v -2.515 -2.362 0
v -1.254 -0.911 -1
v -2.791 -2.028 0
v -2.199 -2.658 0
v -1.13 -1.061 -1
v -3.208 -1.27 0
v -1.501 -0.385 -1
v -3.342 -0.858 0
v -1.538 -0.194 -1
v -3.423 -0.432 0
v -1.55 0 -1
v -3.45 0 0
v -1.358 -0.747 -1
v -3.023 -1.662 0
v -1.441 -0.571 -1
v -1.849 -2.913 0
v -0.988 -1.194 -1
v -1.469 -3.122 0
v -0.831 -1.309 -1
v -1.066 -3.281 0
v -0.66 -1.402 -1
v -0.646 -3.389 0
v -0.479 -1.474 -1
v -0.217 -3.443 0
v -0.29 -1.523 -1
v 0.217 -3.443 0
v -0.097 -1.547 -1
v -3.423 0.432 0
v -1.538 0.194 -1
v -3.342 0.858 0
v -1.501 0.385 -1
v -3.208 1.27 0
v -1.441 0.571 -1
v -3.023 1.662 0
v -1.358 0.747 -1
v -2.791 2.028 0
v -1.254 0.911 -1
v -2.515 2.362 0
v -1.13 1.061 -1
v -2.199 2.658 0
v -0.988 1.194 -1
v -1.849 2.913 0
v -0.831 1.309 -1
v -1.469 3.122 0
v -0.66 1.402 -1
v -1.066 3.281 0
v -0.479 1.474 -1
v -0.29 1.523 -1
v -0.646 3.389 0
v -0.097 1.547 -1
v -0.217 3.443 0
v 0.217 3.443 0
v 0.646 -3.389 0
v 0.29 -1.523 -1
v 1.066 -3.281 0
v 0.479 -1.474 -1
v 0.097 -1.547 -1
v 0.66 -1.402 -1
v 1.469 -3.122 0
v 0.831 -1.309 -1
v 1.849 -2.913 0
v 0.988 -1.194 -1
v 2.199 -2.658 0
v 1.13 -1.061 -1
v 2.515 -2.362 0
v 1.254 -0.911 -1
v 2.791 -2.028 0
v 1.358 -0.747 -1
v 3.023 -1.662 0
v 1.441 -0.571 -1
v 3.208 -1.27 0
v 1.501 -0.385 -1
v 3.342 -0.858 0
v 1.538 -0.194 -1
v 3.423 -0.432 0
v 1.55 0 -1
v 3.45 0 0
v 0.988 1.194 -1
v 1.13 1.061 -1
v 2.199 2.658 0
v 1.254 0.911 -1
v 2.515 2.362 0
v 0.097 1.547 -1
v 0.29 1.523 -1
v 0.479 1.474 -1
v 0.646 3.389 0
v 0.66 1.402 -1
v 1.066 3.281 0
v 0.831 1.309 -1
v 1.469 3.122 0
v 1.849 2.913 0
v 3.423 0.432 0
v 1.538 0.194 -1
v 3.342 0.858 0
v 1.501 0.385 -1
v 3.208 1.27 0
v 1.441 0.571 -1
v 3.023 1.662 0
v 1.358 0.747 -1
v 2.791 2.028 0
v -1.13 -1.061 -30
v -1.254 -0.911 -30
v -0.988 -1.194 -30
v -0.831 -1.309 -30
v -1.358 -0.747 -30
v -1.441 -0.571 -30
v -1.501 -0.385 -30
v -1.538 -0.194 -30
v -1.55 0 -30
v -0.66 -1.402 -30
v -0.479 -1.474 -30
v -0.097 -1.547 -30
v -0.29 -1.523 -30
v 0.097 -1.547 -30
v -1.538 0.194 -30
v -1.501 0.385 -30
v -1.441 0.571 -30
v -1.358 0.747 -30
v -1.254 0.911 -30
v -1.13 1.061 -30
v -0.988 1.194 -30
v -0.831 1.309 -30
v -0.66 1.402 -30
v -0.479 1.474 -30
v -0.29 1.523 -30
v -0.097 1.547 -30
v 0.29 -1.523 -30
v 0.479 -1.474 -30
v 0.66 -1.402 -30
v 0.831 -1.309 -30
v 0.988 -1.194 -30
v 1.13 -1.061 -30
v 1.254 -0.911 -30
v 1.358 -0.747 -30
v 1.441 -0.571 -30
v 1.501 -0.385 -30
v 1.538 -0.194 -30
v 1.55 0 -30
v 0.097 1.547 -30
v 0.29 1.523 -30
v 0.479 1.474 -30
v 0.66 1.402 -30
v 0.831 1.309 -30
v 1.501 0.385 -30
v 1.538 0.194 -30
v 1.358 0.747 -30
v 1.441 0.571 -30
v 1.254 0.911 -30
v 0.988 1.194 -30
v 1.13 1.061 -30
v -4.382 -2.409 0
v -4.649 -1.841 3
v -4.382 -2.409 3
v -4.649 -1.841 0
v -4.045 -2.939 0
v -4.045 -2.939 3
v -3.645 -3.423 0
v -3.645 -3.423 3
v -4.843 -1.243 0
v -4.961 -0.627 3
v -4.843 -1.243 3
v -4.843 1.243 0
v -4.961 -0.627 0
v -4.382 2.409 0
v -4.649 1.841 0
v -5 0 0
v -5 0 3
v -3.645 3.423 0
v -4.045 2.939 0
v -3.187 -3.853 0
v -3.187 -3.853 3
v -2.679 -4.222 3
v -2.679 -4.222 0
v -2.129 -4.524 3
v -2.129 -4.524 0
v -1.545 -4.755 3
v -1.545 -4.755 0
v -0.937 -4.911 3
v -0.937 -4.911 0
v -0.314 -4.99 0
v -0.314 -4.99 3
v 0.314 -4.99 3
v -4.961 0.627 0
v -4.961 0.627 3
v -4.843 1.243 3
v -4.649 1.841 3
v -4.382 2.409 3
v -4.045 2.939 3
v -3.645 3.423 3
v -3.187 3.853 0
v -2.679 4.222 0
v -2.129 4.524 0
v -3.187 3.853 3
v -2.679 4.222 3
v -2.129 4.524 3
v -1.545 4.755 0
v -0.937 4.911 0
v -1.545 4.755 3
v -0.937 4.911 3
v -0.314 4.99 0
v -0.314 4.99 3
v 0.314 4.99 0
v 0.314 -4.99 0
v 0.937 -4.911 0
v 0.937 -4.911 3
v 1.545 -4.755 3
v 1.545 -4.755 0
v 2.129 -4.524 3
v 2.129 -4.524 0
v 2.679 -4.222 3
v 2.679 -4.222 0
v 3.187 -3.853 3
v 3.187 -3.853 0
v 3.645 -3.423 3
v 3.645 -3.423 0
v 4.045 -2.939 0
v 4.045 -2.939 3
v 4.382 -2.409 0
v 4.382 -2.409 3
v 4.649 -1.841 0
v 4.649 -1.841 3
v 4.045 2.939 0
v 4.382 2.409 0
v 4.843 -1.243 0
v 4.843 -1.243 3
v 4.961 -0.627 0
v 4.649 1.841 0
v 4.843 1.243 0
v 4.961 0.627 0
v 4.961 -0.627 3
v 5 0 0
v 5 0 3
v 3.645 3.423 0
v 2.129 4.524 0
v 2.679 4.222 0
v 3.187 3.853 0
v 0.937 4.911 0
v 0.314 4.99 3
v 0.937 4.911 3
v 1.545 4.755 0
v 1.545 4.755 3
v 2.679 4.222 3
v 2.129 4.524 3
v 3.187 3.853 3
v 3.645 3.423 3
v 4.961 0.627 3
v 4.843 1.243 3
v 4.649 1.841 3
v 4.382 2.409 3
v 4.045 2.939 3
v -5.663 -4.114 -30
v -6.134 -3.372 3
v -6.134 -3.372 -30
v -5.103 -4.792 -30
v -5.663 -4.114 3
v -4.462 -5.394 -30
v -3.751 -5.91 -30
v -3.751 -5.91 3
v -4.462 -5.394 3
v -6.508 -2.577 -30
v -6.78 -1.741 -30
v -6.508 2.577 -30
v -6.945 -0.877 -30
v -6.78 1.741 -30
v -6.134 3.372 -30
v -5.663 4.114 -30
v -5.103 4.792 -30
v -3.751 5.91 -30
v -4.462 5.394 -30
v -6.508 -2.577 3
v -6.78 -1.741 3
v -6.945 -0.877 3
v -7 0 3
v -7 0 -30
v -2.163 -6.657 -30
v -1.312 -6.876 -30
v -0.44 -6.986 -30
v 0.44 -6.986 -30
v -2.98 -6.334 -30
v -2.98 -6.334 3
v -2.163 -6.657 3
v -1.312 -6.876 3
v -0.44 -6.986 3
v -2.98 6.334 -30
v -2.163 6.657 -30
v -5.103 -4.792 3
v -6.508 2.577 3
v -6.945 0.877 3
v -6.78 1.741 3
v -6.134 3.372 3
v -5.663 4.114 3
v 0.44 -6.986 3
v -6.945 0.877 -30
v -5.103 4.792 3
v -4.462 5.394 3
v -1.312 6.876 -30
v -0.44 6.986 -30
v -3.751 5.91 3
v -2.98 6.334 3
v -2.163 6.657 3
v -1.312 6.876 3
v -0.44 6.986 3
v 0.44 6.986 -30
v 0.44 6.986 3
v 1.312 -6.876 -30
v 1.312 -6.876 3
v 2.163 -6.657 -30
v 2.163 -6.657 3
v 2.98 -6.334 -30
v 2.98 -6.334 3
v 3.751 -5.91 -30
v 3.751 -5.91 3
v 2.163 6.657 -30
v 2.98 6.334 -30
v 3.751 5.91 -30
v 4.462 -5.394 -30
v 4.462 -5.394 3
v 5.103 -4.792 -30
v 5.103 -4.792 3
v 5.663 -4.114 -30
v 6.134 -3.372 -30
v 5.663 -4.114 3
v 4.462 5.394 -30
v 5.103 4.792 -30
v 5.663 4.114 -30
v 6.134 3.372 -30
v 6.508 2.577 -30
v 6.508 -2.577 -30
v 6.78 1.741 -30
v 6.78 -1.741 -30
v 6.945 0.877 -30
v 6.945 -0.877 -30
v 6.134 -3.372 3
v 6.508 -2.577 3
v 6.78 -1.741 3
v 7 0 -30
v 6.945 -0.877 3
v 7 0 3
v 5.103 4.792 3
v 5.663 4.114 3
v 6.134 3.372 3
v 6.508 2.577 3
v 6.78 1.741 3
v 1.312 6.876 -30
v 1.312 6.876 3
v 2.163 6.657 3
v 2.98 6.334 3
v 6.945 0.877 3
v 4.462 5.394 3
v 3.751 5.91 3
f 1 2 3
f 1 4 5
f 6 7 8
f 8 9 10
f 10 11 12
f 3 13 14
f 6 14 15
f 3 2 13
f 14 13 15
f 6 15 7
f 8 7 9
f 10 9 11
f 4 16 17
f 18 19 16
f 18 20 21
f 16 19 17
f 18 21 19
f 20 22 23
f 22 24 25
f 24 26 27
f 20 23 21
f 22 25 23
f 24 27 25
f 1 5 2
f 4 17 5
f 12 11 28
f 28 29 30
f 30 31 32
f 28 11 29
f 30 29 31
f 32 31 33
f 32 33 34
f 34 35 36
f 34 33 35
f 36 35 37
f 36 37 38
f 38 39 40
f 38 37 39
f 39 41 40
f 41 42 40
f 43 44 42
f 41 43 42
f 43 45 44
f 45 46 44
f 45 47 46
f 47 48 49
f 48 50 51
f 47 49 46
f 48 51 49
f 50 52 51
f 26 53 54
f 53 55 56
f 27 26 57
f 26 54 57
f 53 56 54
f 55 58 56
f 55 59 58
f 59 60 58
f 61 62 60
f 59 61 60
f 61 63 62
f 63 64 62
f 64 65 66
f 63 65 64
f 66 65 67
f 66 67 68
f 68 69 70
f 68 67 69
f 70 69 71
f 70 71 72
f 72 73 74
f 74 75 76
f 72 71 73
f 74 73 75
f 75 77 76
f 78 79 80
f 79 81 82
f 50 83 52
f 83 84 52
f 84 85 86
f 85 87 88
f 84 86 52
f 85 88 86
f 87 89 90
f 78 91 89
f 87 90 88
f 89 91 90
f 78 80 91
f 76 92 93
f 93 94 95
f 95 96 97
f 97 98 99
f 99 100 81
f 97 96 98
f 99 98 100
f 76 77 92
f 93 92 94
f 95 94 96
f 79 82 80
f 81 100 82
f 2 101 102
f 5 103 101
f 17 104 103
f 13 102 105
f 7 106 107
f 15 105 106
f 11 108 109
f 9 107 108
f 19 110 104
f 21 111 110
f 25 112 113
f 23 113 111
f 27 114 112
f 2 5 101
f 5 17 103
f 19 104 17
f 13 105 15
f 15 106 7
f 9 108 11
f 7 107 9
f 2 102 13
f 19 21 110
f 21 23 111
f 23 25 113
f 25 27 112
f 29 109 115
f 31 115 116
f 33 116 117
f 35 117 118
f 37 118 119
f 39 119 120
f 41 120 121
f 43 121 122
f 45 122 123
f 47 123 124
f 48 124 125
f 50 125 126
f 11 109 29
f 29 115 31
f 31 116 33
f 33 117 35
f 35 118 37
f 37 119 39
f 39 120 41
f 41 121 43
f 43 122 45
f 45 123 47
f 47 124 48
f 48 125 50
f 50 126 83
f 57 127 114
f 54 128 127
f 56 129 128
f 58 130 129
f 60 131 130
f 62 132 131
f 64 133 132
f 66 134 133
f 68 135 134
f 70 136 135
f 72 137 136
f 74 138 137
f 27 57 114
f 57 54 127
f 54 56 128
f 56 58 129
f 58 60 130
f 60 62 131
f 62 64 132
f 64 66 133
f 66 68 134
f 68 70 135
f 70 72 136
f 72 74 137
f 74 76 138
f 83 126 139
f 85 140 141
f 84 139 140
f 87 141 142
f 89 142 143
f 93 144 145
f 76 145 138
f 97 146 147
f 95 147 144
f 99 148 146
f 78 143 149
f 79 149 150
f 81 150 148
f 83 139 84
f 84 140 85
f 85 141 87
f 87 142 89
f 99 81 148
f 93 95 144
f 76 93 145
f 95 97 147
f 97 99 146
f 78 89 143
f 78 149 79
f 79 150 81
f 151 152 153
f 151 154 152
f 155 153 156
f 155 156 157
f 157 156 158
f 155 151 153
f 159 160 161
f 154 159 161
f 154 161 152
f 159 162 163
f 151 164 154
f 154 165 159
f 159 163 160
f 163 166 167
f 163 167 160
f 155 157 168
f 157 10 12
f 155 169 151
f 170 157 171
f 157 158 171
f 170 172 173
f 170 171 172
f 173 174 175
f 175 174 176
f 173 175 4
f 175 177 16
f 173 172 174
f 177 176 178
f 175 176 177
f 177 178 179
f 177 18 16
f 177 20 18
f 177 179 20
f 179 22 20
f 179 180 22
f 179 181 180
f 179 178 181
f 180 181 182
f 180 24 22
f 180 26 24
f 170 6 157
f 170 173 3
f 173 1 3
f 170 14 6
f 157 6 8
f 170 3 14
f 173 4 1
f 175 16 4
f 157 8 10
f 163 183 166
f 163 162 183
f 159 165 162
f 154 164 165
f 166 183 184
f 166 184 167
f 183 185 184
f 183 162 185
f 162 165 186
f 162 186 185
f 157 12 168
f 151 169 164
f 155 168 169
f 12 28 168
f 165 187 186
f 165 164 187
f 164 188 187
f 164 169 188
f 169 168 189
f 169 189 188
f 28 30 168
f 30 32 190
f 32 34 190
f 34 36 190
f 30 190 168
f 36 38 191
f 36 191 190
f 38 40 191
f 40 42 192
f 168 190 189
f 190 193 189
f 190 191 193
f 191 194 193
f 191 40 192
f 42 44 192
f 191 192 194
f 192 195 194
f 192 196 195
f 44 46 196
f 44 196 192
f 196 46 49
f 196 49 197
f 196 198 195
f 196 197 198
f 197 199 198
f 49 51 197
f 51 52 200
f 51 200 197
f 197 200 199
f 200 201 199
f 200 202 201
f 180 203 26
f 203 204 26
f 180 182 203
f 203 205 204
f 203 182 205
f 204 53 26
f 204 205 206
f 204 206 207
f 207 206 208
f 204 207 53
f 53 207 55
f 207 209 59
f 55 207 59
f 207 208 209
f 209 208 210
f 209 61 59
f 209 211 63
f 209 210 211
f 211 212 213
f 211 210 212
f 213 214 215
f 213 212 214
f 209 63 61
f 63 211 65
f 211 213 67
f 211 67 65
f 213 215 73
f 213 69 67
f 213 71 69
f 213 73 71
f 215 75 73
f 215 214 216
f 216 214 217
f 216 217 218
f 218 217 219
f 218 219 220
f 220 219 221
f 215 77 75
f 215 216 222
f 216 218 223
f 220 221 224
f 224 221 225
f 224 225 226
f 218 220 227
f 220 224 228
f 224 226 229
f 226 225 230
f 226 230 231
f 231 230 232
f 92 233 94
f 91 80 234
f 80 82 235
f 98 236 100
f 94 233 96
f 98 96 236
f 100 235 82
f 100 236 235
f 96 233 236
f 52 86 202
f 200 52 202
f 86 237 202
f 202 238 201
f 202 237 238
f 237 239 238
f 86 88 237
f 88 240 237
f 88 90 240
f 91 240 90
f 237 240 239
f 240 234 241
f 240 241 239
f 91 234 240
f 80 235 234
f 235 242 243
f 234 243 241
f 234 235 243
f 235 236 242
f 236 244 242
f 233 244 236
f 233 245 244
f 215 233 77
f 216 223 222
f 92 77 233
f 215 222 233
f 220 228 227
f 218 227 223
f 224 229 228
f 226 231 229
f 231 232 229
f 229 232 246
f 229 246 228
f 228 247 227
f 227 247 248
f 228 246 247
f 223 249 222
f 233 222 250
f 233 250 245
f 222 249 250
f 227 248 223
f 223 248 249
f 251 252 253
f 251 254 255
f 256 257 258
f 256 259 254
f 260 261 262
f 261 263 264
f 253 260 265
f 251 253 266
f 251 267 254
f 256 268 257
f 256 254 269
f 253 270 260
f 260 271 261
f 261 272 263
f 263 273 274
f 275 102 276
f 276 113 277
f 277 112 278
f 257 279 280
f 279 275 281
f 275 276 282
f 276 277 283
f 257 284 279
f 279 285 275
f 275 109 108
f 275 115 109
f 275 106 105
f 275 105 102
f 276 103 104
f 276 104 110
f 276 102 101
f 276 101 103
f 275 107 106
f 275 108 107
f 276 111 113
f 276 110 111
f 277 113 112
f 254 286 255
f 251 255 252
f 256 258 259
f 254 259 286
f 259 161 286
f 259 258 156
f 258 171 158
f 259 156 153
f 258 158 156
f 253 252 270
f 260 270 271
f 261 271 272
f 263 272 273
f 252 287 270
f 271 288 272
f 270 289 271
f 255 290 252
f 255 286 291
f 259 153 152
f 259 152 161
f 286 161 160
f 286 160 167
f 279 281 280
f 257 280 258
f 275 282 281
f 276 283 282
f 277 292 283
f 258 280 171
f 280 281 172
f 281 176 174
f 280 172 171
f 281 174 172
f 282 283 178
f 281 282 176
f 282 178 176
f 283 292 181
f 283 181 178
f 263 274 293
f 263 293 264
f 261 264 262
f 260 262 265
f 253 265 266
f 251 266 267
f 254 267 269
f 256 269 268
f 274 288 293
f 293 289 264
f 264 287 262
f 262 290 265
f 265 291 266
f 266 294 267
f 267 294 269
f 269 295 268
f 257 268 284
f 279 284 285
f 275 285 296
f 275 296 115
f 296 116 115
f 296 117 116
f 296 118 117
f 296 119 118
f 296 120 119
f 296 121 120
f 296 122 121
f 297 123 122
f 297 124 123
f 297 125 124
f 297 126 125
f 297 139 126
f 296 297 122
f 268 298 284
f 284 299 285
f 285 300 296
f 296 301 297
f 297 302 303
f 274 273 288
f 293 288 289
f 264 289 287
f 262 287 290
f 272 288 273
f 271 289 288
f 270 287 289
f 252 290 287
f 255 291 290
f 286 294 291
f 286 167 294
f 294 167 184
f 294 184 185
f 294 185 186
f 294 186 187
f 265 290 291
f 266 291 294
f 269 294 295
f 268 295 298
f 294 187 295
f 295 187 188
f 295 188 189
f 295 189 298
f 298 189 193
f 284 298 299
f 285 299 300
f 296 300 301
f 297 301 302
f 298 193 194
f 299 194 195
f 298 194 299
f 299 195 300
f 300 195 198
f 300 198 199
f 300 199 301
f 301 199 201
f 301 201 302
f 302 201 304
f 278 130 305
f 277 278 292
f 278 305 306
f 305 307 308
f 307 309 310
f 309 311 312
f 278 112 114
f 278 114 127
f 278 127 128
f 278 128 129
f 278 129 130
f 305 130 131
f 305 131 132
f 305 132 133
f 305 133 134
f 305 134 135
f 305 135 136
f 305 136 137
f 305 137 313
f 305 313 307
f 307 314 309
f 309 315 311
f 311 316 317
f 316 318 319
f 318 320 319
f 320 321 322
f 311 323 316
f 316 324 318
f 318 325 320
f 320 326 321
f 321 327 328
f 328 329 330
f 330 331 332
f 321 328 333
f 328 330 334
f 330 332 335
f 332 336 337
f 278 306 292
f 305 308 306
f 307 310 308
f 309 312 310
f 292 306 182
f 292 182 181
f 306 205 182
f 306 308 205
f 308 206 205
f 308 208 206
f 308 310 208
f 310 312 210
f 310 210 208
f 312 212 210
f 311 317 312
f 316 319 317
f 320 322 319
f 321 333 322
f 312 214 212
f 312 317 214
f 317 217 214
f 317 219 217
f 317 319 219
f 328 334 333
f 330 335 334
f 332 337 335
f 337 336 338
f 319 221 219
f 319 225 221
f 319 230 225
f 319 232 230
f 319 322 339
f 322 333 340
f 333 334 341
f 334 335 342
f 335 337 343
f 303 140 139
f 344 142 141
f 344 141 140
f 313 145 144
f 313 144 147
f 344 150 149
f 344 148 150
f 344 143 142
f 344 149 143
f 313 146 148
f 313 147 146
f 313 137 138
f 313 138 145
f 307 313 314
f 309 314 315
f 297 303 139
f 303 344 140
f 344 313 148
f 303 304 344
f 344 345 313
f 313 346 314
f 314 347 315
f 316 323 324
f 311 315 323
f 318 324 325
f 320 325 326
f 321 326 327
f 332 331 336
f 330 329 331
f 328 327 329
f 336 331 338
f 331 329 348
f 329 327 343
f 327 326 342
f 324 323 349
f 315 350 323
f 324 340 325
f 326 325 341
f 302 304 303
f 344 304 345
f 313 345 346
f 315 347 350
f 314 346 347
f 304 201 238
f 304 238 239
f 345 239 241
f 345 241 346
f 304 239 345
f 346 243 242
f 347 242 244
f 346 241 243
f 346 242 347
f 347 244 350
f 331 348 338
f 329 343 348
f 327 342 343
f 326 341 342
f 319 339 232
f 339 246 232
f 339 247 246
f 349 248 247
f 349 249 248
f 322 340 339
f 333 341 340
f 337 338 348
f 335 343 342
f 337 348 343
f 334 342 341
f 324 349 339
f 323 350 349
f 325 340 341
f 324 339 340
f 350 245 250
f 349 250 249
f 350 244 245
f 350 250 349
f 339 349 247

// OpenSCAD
$fn = 50;


difference() {
	union() {
		translate(v = [0, 0, -30.0000000000]) {
			cylinder(h = 33, r = 7.0000000000);
		}
	}
	union() {
		translate(v = [0, 0, 0]) {
			rotate(a = [0, 0, 0]) {
				difference() {
					union() {
						translate(v = [0, 0, -33.0000000000]) {
							cylinder(h = 33, r = 1.2500000000);
						}
						translate(v = [0, 0, -1.0000000000]) {
							cylinder(h = 1.0000000000, r1 = 1.5500000000, r2 = 3.4500000000);
						}
						translate(v = [0, 0, -33.0000000000]) {
							cylinder(h = 33, r = 1.5500000000);
						}
						translate(v = [0, 0, -33.0000000000]) {
							cylinder(h = 33, r = 1.2500000000);
						}
					}
					union();
				}
			}
		}
		#cylinder(h = 3, r = 5.0000000000);
	}
}
